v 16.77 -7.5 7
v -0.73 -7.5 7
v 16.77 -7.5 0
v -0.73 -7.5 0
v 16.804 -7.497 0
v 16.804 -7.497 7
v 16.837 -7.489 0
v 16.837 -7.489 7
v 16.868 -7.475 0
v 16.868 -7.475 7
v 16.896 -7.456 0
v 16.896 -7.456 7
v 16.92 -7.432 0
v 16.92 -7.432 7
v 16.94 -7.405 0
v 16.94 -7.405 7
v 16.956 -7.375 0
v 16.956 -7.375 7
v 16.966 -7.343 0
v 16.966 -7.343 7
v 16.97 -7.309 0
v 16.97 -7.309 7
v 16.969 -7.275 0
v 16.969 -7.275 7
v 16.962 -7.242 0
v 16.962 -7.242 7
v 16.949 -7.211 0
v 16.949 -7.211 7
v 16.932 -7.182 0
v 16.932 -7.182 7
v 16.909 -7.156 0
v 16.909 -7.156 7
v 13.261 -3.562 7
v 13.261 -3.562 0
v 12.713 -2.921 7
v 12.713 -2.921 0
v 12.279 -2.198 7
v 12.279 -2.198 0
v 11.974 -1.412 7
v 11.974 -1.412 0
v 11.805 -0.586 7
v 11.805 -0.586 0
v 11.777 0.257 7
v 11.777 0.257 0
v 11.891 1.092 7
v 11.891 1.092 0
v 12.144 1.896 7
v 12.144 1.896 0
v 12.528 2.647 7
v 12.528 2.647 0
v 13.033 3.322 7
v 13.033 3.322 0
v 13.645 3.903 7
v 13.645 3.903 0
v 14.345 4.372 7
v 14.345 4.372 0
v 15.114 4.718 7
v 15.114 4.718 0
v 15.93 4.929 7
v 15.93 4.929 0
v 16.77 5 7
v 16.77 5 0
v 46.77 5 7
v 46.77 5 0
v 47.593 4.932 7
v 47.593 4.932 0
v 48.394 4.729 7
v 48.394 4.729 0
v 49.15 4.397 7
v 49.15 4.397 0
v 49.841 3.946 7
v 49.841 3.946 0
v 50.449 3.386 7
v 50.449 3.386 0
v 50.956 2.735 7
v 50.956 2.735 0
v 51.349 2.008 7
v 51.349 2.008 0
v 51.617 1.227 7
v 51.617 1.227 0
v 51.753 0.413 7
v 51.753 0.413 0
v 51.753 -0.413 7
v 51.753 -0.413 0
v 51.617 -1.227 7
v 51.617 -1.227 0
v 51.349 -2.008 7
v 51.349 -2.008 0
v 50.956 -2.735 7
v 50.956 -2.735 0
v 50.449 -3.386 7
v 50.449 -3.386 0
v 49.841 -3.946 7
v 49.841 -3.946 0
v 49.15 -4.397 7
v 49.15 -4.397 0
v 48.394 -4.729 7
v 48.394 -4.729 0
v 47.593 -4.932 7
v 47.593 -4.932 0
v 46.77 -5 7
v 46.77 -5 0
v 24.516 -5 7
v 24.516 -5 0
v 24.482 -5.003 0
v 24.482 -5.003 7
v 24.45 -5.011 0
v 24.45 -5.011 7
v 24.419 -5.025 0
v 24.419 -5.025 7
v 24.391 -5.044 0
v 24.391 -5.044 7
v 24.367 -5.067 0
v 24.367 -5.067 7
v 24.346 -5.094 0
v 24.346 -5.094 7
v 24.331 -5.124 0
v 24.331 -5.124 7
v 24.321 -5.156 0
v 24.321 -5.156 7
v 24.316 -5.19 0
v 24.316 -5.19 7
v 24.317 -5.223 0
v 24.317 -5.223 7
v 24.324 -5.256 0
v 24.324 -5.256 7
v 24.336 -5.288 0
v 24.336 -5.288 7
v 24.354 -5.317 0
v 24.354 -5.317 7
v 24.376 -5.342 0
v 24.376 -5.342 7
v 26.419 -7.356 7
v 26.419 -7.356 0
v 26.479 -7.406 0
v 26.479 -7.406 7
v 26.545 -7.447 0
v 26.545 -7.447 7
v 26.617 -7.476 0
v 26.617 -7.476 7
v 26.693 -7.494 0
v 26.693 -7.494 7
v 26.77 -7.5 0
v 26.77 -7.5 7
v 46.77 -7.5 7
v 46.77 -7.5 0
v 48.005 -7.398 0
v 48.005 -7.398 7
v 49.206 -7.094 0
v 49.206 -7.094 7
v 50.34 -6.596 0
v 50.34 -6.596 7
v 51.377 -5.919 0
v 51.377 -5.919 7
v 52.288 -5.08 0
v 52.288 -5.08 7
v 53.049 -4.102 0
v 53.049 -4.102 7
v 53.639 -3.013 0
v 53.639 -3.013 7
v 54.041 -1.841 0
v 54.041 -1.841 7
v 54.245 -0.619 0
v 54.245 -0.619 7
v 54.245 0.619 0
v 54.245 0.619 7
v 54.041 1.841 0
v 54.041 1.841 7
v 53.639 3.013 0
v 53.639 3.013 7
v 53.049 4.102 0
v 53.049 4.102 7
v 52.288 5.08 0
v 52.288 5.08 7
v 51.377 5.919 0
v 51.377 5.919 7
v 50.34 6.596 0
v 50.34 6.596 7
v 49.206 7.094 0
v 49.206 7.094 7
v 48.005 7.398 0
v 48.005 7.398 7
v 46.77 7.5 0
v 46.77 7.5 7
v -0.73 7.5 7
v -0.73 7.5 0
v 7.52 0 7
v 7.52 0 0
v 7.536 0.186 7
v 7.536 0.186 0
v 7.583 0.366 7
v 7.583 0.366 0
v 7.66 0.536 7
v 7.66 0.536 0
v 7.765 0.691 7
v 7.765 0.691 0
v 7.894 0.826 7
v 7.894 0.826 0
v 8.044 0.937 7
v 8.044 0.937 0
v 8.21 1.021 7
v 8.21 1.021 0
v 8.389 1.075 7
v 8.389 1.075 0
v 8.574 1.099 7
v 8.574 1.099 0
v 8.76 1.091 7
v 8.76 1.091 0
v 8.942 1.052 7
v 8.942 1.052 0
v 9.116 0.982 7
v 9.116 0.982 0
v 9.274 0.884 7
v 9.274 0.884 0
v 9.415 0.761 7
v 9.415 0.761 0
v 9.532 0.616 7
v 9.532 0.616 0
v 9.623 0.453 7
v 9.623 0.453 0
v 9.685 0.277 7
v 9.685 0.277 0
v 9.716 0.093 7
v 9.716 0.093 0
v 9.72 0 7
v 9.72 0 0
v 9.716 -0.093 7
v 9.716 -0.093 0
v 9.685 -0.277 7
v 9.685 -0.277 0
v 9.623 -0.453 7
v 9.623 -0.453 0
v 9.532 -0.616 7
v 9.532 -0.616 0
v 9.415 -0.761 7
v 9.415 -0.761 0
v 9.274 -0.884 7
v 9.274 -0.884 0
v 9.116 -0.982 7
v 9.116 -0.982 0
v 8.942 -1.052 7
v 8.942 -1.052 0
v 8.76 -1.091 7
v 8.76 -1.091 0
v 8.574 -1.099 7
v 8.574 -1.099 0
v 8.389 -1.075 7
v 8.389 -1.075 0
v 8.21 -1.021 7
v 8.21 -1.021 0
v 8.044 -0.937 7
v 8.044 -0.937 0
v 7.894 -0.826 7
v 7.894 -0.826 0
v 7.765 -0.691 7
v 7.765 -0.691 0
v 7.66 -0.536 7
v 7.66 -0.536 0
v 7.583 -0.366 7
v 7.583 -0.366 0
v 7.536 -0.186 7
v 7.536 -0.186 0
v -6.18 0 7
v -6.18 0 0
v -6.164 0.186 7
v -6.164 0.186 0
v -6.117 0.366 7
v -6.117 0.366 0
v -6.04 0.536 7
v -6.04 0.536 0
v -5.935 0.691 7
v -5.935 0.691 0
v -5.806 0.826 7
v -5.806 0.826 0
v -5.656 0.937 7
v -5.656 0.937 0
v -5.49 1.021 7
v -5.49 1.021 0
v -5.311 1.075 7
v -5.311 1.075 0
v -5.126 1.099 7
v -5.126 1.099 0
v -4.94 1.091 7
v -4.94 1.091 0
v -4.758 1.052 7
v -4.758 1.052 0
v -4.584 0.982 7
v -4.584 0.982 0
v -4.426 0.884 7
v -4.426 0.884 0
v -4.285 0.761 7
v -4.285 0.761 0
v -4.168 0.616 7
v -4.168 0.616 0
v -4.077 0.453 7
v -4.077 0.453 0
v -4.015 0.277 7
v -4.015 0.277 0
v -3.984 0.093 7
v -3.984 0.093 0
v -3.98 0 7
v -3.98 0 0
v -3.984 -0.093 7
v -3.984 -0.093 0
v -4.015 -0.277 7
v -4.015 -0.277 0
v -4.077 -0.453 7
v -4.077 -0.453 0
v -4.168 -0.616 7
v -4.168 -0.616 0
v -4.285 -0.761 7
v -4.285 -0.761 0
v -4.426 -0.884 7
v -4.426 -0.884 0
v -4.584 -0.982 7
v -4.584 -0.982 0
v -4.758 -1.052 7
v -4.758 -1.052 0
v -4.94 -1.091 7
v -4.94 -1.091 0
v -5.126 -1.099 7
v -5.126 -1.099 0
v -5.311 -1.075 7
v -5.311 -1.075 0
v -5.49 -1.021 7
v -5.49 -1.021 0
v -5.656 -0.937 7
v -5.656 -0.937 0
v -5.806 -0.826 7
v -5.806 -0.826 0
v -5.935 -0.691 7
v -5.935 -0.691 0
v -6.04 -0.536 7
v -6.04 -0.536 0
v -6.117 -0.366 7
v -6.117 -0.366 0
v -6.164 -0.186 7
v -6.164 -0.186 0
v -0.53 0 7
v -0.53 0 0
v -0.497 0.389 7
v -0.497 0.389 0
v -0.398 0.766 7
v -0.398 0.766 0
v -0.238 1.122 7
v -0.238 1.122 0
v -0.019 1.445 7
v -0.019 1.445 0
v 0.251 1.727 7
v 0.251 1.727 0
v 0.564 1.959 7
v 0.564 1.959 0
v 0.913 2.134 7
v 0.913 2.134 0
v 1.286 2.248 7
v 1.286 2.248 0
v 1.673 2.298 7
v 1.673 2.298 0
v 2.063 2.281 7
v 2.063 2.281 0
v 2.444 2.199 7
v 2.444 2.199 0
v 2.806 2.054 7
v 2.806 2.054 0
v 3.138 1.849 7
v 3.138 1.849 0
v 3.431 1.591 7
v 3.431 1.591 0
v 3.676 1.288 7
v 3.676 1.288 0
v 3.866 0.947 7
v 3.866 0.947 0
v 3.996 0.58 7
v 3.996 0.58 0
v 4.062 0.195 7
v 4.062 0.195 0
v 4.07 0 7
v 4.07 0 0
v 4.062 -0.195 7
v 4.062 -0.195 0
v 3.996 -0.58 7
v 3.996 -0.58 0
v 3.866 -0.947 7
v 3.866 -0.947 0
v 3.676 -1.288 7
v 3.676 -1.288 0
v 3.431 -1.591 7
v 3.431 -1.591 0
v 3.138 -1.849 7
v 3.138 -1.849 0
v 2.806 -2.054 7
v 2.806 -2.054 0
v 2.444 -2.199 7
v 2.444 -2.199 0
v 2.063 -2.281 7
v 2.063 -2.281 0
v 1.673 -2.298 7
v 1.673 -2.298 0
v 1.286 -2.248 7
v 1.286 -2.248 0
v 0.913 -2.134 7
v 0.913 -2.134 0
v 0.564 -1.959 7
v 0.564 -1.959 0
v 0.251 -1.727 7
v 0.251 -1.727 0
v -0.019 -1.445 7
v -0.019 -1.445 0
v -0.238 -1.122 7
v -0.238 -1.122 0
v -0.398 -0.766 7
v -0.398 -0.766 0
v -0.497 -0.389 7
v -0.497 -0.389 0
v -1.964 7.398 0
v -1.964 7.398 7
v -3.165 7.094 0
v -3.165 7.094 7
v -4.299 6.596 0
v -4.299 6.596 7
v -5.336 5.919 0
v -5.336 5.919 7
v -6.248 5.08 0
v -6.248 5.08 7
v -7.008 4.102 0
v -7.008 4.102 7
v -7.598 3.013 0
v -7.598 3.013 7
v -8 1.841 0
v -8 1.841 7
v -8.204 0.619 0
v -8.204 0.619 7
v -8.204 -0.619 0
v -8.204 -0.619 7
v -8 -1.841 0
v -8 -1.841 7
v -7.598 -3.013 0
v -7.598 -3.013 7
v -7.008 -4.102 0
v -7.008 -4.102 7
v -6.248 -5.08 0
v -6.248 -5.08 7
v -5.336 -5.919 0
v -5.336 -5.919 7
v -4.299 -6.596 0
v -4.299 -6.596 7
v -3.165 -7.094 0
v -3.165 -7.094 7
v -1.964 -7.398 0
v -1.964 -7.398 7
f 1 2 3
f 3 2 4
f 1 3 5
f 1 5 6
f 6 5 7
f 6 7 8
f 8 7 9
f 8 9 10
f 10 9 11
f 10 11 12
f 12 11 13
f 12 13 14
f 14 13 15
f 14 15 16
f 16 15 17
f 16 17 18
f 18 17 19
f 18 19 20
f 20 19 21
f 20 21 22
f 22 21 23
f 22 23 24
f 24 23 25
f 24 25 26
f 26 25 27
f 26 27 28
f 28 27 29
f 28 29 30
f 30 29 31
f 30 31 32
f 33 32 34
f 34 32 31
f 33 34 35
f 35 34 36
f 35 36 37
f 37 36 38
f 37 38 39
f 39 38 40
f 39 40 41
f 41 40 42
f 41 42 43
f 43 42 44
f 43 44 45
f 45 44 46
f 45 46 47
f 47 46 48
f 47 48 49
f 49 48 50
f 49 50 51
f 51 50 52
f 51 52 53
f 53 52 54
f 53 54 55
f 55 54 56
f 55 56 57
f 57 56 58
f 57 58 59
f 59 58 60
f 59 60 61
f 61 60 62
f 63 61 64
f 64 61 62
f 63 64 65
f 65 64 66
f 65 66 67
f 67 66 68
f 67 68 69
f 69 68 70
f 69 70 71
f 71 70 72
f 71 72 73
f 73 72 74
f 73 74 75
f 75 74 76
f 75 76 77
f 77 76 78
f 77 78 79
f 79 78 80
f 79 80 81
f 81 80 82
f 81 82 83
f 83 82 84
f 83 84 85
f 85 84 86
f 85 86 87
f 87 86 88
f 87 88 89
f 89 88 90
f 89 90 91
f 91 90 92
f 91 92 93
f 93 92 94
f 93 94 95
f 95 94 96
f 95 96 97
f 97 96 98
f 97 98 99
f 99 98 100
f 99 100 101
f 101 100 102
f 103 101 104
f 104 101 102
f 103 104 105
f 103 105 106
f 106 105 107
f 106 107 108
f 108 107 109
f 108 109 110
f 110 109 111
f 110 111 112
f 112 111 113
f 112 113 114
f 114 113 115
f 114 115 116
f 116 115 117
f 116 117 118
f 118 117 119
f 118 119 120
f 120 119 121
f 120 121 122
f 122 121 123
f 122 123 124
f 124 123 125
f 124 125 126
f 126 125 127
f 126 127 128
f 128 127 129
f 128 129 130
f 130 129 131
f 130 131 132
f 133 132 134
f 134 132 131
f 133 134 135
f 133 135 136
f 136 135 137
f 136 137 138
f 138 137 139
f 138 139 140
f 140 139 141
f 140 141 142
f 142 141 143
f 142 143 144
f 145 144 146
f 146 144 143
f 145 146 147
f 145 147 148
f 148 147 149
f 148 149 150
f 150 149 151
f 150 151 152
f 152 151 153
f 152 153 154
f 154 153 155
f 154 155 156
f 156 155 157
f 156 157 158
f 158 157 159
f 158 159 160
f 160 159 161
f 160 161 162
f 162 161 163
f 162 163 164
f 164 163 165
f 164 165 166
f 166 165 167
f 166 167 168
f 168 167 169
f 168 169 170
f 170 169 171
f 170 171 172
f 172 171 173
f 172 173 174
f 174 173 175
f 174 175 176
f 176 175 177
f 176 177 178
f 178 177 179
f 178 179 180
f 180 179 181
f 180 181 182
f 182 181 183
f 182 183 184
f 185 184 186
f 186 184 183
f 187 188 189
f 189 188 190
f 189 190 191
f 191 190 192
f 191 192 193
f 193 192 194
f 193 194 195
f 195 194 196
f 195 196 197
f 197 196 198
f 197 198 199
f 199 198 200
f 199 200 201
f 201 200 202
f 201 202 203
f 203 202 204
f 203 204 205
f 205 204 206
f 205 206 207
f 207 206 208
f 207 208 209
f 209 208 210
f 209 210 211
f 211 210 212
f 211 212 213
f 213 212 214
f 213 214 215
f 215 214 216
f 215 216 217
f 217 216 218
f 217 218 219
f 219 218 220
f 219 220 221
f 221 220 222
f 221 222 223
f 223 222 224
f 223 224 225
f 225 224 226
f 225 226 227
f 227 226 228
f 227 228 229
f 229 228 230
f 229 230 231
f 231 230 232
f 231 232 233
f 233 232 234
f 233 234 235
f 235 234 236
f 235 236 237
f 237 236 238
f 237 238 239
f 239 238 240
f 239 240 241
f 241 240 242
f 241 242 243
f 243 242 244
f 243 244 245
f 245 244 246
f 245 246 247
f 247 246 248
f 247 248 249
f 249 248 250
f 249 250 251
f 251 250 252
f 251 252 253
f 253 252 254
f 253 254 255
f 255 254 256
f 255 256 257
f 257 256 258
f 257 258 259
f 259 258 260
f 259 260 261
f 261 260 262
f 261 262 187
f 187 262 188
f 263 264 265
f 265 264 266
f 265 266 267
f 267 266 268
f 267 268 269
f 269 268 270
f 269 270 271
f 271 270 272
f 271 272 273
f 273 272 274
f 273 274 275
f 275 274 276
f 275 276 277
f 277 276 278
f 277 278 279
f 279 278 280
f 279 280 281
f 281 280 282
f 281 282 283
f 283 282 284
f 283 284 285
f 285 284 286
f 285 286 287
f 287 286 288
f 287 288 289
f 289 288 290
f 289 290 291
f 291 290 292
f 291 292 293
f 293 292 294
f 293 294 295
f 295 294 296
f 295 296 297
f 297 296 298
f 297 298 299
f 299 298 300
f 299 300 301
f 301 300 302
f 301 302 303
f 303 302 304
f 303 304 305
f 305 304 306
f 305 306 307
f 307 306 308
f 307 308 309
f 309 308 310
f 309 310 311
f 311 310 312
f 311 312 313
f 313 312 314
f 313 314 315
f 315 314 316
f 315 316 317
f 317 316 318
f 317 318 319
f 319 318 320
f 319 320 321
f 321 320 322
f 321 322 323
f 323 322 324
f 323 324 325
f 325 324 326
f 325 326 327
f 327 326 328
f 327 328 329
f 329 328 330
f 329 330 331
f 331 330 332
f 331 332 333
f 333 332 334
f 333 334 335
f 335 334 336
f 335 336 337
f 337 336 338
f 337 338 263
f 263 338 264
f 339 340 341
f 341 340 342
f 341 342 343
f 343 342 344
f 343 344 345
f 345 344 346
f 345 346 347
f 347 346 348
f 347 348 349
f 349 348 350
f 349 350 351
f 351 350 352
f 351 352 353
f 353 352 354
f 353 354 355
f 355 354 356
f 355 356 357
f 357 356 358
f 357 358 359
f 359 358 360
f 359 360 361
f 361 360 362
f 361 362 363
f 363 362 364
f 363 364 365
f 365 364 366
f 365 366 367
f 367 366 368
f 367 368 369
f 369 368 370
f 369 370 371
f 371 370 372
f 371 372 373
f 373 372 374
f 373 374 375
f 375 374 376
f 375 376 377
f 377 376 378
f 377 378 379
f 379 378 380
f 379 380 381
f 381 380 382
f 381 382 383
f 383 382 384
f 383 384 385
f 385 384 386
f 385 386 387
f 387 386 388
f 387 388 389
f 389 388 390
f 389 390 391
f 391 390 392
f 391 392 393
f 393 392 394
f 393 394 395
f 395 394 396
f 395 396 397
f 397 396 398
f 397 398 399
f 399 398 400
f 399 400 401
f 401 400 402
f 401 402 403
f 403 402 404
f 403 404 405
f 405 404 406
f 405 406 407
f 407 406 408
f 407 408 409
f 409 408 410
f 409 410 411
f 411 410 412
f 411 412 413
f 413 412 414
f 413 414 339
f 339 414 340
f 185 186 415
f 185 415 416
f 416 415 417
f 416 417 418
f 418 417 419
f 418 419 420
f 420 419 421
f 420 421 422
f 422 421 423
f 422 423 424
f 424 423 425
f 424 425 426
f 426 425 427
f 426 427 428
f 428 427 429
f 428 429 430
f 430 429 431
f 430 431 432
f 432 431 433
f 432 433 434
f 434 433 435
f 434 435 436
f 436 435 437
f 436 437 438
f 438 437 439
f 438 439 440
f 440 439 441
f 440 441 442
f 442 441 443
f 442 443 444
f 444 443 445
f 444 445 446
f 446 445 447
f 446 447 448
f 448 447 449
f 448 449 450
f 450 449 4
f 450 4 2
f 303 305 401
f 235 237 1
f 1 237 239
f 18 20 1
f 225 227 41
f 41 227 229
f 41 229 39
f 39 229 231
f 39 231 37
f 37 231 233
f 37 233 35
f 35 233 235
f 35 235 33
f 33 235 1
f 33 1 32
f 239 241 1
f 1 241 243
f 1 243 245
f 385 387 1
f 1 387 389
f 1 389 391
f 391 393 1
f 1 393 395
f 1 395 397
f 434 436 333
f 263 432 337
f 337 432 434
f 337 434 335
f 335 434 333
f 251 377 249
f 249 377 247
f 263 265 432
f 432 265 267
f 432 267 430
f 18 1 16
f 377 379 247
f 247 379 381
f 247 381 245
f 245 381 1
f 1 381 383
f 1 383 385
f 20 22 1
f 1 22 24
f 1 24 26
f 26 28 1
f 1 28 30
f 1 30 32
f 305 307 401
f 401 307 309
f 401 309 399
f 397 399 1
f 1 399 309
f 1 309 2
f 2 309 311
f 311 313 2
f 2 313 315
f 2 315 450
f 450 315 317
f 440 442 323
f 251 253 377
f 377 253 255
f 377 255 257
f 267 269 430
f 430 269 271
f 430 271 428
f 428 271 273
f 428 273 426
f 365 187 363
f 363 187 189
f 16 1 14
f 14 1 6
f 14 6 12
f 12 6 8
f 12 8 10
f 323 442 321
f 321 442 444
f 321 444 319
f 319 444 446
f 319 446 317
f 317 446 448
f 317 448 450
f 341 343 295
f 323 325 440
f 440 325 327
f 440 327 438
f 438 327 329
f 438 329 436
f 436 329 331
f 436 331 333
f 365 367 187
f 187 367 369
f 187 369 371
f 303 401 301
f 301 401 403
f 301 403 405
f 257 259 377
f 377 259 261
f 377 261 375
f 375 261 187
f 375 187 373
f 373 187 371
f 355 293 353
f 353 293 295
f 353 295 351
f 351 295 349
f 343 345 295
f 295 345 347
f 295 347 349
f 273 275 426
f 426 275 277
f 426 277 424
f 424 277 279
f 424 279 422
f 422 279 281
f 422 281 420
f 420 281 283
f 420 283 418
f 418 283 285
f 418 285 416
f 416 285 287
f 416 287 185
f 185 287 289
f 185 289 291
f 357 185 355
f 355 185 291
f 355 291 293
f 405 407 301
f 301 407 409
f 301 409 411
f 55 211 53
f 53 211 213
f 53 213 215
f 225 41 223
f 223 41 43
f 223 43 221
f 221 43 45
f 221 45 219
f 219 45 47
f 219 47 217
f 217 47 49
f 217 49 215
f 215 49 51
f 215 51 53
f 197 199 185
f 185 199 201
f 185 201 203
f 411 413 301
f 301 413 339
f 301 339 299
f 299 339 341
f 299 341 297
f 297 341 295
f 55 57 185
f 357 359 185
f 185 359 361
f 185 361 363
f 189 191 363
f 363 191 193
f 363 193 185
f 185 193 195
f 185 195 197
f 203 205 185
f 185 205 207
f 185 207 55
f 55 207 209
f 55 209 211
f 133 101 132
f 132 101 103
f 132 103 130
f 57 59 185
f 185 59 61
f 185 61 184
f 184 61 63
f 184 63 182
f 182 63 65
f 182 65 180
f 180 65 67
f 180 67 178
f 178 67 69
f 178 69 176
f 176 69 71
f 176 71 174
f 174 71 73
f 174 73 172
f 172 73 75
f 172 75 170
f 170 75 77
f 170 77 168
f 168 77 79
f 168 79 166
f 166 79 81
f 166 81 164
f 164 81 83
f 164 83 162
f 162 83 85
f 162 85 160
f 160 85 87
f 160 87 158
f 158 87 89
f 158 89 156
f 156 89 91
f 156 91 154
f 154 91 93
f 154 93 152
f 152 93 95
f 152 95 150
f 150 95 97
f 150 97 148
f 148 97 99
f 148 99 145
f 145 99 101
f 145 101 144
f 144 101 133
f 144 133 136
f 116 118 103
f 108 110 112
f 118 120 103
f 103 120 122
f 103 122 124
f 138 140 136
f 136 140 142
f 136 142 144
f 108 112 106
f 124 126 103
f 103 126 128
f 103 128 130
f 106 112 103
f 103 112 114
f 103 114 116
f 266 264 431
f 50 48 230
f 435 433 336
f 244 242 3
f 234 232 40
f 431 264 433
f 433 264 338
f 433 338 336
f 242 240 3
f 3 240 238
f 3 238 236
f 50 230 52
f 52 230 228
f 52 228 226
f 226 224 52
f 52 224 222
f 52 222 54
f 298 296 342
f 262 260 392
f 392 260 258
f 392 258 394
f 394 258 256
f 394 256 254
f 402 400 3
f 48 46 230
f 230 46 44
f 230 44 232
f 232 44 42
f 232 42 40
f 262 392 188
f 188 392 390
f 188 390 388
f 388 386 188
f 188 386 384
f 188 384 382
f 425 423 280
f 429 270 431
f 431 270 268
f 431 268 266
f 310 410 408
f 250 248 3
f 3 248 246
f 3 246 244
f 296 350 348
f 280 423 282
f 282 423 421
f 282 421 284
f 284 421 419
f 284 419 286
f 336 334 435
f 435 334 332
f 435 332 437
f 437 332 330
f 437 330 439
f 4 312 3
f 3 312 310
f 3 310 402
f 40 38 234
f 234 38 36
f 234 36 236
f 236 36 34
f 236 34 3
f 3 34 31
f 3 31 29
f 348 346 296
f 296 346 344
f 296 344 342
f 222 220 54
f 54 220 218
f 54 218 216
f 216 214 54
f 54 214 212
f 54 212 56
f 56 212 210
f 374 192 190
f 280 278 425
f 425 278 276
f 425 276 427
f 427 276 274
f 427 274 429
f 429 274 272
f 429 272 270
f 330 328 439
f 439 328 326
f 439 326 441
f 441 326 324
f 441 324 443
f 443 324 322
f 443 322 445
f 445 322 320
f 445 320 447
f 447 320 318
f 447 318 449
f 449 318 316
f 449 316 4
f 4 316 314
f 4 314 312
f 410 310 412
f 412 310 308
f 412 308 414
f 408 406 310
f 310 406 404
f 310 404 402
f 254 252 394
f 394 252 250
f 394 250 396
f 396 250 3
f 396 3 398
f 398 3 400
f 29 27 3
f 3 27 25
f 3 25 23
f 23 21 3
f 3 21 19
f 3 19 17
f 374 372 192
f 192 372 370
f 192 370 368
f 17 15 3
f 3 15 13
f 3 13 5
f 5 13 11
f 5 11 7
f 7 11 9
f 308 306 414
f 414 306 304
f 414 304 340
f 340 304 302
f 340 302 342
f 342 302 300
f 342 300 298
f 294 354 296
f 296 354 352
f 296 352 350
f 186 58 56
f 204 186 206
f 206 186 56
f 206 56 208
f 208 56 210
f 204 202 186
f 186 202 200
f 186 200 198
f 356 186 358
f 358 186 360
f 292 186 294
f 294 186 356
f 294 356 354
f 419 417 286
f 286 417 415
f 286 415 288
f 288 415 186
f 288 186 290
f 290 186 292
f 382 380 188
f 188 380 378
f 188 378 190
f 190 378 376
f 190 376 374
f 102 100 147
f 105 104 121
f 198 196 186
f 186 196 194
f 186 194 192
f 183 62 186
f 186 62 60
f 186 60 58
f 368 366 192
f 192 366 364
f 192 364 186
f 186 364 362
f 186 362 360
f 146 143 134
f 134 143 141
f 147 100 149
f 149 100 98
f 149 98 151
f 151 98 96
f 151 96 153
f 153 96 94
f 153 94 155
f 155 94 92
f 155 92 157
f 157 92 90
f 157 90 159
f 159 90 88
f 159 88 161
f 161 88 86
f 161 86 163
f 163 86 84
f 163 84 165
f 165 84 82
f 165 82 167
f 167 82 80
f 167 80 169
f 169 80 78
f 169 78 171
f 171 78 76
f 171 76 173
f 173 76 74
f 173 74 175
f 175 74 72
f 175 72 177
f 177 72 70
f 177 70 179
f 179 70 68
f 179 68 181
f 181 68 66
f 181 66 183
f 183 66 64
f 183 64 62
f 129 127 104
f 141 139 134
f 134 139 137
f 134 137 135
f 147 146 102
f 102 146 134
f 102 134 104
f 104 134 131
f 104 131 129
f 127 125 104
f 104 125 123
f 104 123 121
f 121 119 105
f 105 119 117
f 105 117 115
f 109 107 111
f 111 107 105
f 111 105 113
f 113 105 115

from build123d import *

# Parameters (mm, degrees)
SKETCH2_R           = 2.3
SKETCH2_R_2         = 1.1
BOSS_EXTRUDE1_DEPTH = 7


with BuildPart() as part:
    # Sketch2 → Boss-Extrude1 (new body)
    with BuildSketch(Plane.XY):
        with BuildLine():
            Line((16.77037128, 5), (46.77037128, 5))
            ThreePointArc((46.77037128, 5), (51.770370099, 0), (46.77037128, -5))
            Line((46.77037128, -5), (24.516048425, -5))
            ThreePointArc((24.516048425, -5), (24.330990192, -5.124148498), (24.375678975, -5.342465496))
            Line((24.375678975, -5.342465496), (26.419446474, -7.35616374))
            ThreePointArc((26.419446474, -7.35616374), (26.580741343, -7.462645583), (26.770370099, -7.5))
            Line((26.770370099, -7.5), (46.77037187, -7.5))
            ThreePointArc((46.77037187, -7.5), (54.270370099, 2.95e-07), (46.77037128, 7.5))
            Line((46.77037128, 7.5), (-0.729629901, 7.5))
            ThreePointArc((-0.729629901, 7.5), (-8.229629901, 0), (-0.729629901, -7.5))
            Line((-0.729629901, -7.5), (16.770370099, -7.5))
            ThreePointArc((16.770370099, -7.5), (16.95577733, -7.374994391), (16.909415122, -7.156241586))
            Line((16.909415122, -7.156241586), (13.261135036, -3.561637402))
            ThreePointArc((13.261135036, -3.561637402), (12.143915454, 1.896287556), (16.77037128, 5))
        make_face()
        with Locations((1.770370689, 0)):
            Circle(SKETCH2_R, mode=Mode.SUBTRACT)
        with Locations((8.620370689, 0)):
            Circle(SKETCH2_R_2, mode=Mode.SUBTRACT)
        with Locations((-5.079629311, 0)):
            Circle(SKETCH2_R_2, mode=Mode.SUBTRACT)
    extrude(amount=BOSS_EXTRUDE1_DEPTH)


solid = part.part
